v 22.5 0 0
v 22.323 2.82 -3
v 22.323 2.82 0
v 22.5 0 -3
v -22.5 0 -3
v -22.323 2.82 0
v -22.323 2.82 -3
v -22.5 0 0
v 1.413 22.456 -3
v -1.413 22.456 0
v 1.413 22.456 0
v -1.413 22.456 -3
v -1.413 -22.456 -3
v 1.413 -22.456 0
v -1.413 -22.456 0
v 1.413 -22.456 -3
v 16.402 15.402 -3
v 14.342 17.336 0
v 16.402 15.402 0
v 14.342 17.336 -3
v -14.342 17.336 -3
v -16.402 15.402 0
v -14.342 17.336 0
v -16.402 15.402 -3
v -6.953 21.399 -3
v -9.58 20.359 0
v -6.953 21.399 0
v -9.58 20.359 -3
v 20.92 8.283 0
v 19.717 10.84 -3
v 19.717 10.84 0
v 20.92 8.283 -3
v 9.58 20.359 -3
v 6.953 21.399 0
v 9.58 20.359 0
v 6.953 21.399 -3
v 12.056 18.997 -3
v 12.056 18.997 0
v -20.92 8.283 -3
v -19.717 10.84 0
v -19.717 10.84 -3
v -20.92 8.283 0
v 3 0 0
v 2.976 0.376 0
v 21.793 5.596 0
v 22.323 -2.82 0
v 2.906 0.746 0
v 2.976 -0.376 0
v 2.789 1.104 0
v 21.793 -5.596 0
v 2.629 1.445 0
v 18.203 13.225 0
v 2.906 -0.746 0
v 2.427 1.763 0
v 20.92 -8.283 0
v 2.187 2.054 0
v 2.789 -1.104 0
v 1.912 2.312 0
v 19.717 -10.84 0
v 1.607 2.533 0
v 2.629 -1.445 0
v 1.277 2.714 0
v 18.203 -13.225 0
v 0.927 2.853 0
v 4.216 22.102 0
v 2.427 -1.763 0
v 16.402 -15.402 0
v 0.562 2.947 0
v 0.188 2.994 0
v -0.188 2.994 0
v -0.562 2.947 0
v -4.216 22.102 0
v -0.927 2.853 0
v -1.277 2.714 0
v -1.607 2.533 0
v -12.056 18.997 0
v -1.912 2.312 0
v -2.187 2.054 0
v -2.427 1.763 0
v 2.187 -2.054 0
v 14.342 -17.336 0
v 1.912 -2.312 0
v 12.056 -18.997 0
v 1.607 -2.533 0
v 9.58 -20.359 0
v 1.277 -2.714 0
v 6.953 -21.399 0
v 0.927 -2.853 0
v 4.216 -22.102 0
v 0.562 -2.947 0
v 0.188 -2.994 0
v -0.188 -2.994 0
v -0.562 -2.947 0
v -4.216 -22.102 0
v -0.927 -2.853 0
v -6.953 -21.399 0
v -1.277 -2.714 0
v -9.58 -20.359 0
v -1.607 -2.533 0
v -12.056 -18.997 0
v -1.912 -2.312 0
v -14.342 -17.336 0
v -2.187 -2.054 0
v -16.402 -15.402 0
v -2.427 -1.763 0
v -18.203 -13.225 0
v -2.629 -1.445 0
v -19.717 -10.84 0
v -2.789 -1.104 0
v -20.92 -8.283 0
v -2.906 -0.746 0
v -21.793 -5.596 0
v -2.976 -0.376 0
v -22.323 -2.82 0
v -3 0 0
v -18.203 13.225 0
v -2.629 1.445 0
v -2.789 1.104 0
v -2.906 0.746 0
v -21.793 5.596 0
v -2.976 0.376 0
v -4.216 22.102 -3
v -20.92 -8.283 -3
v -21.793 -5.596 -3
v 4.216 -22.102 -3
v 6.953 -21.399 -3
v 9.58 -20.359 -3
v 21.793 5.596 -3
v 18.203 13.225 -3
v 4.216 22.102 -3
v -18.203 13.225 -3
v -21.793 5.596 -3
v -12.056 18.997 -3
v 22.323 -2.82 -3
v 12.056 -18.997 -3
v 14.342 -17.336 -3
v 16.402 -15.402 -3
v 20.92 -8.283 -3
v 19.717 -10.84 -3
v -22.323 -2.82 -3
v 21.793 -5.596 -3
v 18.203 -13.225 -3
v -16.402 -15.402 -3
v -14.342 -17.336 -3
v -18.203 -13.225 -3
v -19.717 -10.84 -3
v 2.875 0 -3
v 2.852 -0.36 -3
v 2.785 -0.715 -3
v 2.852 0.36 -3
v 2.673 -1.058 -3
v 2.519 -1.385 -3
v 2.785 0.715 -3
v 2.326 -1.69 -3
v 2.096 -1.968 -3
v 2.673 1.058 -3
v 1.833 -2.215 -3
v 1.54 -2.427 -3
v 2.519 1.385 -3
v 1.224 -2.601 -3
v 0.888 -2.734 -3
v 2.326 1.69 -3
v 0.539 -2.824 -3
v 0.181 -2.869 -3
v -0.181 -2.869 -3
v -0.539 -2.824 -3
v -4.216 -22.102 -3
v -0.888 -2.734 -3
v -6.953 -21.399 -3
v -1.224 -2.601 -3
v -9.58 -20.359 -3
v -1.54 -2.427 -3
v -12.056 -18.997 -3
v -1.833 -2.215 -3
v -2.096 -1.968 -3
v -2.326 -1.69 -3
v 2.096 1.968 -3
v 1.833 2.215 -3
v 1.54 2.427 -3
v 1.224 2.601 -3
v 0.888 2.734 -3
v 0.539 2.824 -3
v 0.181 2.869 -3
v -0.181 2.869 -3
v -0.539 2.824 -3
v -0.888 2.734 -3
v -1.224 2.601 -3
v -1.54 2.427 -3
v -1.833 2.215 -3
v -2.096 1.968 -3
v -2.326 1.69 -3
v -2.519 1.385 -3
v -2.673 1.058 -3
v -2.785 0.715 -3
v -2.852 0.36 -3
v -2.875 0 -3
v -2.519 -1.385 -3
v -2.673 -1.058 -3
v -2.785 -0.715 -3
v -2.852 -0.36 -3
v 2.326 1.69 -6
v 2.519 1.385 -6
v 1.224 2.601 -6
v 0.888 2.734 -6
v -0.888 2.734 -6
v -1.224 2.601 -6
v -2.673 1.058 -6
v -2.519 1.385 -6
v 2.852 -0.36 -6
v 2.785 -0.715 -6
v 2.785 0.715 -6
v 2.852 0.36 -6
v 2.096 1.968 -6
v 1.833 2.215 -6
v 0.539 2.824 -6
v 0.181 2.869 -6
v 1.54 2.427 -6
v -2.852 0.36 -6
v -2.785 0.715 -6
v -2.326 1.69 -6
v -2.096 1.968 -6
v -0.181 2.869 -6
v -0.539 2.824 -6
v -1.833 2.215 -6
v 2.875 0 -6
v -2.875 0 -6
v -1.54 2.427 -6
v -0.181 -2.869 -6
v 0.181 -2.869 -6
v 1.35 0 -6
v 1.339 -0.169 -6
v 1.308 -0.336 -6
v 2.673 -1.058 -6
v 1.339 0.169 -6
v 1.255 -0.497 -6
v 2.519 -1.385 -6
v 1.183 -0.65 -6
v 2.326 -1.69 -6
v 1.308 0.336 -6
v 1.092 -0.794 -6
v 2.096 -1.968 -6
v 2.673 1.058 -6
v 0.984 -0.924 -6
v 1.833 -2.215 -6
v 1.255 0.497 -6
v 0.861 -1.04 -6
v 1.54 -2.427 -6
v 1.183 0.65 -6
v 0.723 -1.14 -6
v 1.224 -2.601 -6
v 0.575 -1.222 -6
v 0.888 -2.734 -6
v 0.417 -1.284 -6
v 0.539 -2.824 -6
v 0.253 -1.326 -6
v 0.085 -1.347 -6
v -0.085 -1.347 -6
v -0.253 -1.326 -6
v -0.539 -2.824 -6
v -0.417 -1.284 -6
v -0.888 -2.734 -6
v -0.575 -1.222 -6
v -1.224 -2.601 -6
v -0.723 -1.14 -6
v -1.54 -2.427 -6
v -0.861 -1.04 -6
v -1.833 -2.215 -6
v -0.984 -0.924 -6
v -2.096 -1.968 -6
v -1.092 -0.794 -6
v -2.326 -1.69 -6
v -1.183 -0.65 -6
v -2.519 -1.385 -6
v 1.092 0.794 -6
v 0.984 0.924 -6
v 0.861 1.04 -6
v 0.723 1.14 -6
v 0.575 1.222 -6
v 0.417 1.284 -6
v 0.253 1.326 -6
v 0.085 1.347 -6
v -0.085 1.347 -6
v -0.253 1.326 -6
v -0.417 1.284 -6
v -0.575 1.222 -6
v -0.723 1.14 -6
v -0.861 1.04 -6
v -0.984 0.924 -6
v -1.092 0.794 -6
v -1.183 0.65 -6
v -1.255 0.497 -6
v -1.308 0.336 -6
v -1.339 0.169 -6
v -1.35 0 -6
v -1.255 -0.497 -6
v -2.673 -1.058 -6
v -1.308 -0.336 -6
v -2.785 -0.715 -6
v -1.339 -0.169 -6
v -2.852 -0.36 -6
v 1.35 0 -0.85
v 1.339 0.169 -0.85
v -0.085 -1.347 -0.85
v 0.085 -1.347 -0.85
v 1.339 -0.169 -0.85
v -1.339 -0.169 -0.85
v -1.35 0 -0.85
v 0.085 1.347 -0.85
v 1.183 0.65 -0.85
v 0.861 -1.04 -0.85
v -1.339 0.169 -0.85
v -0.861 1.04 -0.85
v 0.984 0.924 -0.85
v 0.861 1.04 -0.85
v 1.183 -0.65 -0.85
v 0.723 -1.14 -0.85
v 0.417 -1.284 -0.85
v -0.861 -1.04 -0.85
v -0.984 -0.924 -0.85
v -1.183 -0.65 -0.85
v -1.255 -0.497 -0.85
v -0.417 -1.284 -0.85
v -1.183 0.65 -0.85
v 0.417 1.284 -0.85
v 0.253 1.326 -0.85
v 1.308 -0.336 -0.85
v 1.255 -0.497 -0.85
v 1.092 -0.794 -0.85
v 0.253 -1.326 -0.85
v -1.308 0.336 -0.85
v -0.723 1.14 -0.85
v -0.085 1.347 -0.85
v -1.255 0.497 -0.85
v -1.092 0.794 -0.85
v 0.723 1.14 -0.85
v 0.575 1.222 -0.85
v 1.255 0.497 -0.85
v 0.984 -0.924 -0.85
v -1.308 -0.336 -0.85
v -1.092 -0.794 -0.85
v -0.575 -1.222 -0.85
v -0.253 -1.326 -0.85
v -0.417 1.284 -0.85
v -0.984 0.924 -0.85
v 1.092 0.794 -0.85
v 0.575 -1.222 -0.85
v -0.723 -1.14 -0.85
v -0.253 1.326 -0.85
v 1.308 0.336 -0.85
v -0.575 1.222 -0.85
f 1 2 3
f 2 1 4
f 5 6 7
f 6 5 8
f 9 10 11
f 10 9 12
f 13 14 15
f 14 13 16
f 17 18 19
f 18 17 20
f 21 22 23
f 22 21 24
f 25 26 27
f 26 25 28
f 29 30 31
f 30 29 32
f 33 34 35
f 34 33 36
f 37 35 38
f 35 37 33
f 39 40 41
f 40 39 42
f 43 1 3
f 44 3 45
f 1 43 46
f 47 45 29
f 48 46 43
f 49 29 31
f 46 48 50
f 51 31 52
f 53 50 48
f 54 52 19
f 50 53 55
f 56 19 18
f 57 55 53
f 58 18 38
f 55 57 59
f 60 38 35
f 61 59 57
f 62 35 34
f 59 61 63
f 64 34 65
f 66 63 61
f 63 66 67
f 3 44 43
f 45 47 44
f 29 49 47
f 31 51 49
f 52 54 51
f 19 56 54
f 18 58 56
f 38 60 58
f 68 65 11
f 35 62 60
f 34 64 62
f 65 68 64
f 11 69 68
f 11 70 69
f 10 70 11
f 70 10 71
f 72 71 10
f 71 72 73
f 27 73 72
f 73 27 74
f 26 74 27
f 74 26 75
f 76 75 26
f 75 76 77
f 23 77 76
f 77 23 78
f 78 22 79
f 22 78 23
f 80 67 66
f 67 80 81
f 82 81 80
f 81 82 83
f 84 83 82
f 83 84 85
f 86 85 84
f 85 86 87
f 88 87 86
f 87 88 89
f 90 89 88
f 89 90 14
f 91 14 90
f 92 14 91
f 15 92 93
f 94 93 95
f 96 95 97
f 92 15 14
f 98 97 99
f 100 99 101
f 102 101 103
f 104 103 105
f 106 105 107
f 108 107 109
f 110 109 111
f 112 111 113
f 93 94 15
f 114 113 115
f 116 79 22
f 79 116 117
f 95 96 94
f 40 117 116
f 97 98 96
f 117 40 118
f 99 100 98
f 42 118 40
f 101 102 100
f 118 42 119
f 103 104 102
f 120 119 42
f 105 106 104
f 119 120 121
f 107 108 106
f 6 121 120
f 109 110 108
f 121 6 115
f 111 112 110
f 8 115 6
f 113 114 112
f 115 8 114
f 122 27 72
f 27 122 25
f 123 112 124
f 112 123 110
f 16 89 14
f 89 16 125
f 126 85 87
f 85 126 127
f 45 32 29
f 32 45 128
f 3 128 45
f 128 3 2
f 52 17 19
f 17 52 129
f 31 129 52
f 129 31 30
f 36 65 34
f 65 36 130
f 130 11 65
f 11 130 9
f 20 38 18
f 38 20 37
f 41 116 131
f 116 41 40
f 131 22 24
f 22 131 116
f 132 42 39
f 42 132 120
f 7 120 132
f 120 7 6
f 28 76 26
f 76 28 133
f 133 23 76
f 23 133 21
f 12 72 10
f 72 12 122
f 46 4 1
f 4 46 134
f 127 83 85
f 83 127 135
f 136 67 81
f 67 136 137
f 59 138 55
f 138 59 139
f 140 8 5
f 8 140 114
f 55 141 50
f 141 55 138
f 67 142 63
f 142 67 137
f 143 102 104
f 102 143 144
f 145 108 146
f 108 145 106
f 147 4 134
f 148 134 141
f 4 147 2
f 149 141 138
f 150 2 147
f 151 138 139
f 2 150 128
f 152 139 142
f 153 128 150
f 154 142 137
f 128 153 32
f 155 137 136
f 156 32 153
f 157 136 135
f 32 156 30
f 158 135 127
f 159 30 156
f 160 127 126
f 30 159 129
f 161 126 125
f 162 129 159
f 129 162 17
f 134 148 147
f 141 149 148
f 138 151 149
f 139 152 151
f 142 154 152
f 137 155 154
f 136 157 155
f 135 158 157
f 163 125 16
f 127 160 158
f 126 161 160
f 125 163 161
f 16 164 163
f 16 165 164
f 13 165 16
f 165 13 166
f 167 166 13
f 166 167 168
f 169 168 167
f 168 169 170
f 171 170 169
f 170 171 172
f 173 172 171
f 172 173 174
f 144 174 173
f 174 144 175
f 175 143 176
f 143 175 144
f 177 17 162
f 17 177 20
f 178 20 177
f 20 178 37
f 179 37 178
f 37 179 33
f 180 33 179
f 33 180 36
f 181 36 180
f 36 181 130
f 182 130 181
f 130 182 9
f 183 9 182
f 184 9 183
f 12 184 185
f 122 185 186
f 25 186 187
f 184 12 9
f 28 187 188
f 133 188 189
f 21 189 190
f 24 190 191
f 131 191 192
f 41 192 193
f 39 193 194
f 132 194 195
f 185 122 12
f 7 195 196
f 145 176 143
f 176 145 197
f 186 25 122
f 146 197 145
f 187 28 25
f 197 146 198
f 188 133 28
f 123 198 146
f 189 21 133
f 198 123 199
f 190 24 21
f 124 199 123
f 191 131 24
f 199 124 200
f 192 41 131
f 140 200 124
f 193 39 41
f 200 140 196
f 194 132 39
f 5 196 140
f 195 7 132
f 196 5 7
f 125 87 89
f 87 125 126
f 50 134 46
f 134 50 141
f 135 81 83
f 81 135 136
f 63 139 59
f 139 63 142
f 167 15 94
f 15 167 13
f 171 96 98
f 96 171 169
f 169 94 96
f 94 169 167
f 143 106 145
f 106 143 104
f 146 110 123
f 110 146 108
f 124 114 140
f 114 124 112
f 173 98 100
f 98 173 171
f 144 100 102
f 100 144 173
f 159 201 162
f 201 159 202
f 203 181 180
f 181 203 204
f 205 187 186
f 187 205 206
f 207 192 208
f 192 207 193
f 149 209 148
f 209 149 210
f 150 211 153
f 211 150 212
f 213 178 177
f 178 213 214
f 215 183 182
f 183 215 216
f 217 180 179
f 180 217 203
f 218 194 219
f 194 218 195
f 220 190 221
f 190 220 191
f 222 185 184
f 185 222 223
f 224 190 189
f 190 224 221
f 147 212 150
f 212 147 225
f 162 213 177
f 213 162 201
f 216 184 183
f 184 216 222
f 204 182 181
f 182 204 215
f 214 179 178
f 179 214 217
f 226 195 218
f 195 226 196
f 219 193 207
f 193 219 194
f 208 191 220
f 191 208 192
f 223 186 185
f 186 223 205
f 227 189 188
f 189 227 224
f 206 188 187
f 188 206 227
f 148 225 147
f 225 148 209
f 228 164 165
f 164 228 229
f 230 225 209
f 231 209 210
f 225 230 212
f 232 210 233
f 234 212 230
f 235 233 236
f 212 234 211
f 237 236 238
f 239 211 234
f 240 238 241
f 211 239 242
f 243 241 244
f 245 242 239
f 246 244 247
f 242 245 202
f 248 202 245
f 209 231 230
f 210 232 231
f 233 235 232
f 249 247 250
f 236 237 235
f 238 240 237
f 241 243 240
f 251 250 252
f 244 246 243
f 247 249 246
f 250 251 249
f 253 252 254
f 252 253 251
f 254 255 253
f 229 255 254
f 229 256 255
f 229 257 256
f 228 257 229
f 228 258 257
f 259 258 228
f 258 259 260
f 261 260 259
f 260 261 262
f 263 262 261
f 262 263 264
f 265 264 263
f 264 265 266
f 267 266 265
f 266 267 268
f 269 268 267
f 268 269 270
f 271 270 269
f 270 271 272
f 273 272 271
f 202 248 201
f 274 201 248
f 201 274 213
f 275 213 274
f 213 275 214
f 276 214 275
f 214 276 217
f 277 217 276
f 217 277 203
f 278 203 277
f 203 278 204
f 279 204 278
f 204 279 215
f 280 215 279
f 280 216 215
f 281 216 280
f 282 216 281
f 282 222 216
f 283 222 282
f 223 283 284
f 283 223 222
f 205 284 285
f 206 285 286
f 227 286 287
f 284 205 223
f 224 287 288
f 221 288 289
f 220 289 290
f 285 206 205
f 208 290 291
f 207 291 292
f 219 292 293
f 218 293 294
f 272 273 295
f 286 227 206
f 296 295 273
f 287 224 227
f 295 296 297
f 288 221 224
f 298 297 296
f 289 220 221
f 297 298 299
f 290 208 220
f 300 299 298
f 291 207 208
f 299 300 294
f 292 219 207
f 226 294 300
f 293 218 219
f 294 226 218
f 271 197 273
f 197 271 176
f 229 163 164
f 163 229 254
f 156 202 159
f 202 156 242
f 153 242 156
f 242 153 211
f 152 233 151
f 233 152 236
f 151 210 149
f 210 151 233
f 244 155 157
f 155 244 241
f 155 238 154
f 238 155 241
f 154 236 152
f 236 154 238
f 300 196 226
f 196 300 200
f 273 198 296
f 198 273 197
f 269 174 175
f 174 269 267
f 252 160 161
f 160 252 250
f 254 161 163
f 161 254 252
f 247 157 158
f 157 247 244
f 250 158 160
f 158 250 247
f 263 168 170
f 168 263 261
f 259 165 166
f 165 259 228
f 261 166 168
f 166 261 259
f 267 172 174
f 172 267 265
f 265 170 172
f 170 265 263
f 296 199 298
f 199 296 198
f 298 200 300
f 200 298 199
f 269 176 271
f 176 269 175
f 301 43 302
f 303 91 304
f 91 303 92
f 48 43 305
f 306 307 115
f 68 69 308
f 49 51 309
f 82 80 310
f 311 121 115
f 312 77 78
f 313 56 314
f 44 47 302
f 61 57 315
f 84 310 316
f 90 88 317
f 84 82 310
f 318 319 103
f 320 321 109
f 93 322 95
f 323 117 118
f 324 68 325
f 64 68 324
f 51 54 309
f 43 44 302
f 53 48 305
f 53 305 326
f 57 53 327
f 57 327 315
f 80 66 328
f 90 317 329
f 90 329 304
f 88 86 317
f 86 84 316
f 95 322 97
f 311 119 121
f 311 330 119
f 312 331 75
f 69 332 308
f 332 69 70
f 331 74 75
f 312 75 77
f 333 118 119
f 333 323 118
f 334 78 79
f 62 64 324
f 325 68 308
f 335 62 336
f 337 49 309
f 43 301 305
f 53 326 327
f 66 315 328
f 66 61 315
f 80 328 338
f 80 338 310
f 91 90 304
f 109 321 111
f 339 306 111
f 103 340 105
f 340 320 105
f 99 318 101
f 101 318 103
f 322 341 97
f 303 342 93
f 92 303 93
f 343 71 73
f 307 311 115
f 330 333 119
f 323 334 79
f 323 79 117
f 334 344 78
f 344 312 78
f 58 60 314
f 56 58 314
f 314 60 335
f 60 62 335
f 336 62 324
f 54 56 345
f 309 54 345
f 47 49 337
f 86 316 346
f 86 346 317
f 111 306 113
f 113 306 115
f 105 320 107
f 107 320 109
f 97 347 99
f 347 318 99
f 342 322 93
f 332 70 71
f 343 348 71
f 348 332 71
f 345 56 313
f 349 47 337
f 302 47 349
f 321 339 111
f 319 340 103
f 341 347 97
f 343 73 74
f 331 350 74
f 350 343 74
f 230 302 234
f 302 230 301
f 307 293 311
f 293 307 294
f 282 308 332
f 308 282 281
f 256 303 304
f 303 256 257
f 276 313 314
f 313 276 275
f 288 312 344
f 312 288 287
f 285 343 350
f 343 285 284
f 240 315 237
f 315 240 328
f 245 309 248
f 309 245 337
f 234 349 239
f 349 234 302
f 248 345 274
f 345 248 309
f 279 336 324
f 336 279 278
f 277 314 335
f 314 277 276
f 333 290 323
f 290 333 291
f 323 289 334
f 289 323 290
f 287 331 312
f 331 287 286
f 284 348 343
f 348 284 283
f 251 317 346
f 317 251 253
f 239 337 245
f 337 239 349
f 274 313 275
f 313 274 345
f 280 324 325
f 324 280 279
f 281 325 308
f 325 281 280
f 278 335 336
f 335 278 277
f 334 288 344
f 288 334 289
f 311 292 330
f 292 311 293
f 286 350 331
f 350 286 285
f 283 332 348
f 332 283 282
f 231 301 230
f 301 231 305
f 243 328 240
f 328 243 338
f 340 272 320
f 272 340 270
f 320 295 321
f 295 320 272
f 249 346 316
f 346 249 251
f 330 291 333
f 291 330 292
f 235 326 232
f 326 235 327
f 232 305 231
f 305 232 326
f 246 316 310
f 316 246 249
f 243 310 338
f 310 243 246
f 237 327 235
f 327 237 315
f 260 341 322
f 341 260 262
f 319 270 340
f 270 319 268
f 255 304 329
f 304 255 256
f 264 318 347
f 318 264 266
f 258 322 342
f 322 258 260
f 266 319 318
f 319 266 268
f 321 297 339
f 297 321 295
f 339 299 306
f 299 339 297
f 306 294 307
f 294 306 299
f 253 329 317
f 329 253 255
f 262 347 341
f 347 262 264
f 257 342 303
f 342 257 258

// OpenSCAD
$fn = 50;


difference() {
	union() {
		translate(v = [0, 0, -3.0000000000]) {
			cylinder(h = 3, r = 22.5000000000);
		}
		translate(v = [0, 0, -6.0000000000]) {
			cylinder(h = 6, r = 2.8750000000);
		}
	}
	union() {
		translate(v = [0, 0, 0]) {
			rotate(a = [0, 0, 0]) {
				difference() {
					union() {
						translate(v = [0, 0, -6.0000000000]) {
							cylinder(h = 6, r = 1.0000000000);
						}
						translate(v = [0, 0, -0.8500000000]) {
							cylinder(h = 0.8500000000, r1 = 1.3500000000, r2 = 3.0000000000);
						}
						translate(v = [0, 0, -6.0000000000]) {
							cylinder(h = 6, r = 1.3500000000);
						}
						translate(v = [0, 0, -6.0000000000]) {
							cylinder(h = 6, r = 1.0000000000);
						}
					}
					union();
				}
			}
		}
	}
}
